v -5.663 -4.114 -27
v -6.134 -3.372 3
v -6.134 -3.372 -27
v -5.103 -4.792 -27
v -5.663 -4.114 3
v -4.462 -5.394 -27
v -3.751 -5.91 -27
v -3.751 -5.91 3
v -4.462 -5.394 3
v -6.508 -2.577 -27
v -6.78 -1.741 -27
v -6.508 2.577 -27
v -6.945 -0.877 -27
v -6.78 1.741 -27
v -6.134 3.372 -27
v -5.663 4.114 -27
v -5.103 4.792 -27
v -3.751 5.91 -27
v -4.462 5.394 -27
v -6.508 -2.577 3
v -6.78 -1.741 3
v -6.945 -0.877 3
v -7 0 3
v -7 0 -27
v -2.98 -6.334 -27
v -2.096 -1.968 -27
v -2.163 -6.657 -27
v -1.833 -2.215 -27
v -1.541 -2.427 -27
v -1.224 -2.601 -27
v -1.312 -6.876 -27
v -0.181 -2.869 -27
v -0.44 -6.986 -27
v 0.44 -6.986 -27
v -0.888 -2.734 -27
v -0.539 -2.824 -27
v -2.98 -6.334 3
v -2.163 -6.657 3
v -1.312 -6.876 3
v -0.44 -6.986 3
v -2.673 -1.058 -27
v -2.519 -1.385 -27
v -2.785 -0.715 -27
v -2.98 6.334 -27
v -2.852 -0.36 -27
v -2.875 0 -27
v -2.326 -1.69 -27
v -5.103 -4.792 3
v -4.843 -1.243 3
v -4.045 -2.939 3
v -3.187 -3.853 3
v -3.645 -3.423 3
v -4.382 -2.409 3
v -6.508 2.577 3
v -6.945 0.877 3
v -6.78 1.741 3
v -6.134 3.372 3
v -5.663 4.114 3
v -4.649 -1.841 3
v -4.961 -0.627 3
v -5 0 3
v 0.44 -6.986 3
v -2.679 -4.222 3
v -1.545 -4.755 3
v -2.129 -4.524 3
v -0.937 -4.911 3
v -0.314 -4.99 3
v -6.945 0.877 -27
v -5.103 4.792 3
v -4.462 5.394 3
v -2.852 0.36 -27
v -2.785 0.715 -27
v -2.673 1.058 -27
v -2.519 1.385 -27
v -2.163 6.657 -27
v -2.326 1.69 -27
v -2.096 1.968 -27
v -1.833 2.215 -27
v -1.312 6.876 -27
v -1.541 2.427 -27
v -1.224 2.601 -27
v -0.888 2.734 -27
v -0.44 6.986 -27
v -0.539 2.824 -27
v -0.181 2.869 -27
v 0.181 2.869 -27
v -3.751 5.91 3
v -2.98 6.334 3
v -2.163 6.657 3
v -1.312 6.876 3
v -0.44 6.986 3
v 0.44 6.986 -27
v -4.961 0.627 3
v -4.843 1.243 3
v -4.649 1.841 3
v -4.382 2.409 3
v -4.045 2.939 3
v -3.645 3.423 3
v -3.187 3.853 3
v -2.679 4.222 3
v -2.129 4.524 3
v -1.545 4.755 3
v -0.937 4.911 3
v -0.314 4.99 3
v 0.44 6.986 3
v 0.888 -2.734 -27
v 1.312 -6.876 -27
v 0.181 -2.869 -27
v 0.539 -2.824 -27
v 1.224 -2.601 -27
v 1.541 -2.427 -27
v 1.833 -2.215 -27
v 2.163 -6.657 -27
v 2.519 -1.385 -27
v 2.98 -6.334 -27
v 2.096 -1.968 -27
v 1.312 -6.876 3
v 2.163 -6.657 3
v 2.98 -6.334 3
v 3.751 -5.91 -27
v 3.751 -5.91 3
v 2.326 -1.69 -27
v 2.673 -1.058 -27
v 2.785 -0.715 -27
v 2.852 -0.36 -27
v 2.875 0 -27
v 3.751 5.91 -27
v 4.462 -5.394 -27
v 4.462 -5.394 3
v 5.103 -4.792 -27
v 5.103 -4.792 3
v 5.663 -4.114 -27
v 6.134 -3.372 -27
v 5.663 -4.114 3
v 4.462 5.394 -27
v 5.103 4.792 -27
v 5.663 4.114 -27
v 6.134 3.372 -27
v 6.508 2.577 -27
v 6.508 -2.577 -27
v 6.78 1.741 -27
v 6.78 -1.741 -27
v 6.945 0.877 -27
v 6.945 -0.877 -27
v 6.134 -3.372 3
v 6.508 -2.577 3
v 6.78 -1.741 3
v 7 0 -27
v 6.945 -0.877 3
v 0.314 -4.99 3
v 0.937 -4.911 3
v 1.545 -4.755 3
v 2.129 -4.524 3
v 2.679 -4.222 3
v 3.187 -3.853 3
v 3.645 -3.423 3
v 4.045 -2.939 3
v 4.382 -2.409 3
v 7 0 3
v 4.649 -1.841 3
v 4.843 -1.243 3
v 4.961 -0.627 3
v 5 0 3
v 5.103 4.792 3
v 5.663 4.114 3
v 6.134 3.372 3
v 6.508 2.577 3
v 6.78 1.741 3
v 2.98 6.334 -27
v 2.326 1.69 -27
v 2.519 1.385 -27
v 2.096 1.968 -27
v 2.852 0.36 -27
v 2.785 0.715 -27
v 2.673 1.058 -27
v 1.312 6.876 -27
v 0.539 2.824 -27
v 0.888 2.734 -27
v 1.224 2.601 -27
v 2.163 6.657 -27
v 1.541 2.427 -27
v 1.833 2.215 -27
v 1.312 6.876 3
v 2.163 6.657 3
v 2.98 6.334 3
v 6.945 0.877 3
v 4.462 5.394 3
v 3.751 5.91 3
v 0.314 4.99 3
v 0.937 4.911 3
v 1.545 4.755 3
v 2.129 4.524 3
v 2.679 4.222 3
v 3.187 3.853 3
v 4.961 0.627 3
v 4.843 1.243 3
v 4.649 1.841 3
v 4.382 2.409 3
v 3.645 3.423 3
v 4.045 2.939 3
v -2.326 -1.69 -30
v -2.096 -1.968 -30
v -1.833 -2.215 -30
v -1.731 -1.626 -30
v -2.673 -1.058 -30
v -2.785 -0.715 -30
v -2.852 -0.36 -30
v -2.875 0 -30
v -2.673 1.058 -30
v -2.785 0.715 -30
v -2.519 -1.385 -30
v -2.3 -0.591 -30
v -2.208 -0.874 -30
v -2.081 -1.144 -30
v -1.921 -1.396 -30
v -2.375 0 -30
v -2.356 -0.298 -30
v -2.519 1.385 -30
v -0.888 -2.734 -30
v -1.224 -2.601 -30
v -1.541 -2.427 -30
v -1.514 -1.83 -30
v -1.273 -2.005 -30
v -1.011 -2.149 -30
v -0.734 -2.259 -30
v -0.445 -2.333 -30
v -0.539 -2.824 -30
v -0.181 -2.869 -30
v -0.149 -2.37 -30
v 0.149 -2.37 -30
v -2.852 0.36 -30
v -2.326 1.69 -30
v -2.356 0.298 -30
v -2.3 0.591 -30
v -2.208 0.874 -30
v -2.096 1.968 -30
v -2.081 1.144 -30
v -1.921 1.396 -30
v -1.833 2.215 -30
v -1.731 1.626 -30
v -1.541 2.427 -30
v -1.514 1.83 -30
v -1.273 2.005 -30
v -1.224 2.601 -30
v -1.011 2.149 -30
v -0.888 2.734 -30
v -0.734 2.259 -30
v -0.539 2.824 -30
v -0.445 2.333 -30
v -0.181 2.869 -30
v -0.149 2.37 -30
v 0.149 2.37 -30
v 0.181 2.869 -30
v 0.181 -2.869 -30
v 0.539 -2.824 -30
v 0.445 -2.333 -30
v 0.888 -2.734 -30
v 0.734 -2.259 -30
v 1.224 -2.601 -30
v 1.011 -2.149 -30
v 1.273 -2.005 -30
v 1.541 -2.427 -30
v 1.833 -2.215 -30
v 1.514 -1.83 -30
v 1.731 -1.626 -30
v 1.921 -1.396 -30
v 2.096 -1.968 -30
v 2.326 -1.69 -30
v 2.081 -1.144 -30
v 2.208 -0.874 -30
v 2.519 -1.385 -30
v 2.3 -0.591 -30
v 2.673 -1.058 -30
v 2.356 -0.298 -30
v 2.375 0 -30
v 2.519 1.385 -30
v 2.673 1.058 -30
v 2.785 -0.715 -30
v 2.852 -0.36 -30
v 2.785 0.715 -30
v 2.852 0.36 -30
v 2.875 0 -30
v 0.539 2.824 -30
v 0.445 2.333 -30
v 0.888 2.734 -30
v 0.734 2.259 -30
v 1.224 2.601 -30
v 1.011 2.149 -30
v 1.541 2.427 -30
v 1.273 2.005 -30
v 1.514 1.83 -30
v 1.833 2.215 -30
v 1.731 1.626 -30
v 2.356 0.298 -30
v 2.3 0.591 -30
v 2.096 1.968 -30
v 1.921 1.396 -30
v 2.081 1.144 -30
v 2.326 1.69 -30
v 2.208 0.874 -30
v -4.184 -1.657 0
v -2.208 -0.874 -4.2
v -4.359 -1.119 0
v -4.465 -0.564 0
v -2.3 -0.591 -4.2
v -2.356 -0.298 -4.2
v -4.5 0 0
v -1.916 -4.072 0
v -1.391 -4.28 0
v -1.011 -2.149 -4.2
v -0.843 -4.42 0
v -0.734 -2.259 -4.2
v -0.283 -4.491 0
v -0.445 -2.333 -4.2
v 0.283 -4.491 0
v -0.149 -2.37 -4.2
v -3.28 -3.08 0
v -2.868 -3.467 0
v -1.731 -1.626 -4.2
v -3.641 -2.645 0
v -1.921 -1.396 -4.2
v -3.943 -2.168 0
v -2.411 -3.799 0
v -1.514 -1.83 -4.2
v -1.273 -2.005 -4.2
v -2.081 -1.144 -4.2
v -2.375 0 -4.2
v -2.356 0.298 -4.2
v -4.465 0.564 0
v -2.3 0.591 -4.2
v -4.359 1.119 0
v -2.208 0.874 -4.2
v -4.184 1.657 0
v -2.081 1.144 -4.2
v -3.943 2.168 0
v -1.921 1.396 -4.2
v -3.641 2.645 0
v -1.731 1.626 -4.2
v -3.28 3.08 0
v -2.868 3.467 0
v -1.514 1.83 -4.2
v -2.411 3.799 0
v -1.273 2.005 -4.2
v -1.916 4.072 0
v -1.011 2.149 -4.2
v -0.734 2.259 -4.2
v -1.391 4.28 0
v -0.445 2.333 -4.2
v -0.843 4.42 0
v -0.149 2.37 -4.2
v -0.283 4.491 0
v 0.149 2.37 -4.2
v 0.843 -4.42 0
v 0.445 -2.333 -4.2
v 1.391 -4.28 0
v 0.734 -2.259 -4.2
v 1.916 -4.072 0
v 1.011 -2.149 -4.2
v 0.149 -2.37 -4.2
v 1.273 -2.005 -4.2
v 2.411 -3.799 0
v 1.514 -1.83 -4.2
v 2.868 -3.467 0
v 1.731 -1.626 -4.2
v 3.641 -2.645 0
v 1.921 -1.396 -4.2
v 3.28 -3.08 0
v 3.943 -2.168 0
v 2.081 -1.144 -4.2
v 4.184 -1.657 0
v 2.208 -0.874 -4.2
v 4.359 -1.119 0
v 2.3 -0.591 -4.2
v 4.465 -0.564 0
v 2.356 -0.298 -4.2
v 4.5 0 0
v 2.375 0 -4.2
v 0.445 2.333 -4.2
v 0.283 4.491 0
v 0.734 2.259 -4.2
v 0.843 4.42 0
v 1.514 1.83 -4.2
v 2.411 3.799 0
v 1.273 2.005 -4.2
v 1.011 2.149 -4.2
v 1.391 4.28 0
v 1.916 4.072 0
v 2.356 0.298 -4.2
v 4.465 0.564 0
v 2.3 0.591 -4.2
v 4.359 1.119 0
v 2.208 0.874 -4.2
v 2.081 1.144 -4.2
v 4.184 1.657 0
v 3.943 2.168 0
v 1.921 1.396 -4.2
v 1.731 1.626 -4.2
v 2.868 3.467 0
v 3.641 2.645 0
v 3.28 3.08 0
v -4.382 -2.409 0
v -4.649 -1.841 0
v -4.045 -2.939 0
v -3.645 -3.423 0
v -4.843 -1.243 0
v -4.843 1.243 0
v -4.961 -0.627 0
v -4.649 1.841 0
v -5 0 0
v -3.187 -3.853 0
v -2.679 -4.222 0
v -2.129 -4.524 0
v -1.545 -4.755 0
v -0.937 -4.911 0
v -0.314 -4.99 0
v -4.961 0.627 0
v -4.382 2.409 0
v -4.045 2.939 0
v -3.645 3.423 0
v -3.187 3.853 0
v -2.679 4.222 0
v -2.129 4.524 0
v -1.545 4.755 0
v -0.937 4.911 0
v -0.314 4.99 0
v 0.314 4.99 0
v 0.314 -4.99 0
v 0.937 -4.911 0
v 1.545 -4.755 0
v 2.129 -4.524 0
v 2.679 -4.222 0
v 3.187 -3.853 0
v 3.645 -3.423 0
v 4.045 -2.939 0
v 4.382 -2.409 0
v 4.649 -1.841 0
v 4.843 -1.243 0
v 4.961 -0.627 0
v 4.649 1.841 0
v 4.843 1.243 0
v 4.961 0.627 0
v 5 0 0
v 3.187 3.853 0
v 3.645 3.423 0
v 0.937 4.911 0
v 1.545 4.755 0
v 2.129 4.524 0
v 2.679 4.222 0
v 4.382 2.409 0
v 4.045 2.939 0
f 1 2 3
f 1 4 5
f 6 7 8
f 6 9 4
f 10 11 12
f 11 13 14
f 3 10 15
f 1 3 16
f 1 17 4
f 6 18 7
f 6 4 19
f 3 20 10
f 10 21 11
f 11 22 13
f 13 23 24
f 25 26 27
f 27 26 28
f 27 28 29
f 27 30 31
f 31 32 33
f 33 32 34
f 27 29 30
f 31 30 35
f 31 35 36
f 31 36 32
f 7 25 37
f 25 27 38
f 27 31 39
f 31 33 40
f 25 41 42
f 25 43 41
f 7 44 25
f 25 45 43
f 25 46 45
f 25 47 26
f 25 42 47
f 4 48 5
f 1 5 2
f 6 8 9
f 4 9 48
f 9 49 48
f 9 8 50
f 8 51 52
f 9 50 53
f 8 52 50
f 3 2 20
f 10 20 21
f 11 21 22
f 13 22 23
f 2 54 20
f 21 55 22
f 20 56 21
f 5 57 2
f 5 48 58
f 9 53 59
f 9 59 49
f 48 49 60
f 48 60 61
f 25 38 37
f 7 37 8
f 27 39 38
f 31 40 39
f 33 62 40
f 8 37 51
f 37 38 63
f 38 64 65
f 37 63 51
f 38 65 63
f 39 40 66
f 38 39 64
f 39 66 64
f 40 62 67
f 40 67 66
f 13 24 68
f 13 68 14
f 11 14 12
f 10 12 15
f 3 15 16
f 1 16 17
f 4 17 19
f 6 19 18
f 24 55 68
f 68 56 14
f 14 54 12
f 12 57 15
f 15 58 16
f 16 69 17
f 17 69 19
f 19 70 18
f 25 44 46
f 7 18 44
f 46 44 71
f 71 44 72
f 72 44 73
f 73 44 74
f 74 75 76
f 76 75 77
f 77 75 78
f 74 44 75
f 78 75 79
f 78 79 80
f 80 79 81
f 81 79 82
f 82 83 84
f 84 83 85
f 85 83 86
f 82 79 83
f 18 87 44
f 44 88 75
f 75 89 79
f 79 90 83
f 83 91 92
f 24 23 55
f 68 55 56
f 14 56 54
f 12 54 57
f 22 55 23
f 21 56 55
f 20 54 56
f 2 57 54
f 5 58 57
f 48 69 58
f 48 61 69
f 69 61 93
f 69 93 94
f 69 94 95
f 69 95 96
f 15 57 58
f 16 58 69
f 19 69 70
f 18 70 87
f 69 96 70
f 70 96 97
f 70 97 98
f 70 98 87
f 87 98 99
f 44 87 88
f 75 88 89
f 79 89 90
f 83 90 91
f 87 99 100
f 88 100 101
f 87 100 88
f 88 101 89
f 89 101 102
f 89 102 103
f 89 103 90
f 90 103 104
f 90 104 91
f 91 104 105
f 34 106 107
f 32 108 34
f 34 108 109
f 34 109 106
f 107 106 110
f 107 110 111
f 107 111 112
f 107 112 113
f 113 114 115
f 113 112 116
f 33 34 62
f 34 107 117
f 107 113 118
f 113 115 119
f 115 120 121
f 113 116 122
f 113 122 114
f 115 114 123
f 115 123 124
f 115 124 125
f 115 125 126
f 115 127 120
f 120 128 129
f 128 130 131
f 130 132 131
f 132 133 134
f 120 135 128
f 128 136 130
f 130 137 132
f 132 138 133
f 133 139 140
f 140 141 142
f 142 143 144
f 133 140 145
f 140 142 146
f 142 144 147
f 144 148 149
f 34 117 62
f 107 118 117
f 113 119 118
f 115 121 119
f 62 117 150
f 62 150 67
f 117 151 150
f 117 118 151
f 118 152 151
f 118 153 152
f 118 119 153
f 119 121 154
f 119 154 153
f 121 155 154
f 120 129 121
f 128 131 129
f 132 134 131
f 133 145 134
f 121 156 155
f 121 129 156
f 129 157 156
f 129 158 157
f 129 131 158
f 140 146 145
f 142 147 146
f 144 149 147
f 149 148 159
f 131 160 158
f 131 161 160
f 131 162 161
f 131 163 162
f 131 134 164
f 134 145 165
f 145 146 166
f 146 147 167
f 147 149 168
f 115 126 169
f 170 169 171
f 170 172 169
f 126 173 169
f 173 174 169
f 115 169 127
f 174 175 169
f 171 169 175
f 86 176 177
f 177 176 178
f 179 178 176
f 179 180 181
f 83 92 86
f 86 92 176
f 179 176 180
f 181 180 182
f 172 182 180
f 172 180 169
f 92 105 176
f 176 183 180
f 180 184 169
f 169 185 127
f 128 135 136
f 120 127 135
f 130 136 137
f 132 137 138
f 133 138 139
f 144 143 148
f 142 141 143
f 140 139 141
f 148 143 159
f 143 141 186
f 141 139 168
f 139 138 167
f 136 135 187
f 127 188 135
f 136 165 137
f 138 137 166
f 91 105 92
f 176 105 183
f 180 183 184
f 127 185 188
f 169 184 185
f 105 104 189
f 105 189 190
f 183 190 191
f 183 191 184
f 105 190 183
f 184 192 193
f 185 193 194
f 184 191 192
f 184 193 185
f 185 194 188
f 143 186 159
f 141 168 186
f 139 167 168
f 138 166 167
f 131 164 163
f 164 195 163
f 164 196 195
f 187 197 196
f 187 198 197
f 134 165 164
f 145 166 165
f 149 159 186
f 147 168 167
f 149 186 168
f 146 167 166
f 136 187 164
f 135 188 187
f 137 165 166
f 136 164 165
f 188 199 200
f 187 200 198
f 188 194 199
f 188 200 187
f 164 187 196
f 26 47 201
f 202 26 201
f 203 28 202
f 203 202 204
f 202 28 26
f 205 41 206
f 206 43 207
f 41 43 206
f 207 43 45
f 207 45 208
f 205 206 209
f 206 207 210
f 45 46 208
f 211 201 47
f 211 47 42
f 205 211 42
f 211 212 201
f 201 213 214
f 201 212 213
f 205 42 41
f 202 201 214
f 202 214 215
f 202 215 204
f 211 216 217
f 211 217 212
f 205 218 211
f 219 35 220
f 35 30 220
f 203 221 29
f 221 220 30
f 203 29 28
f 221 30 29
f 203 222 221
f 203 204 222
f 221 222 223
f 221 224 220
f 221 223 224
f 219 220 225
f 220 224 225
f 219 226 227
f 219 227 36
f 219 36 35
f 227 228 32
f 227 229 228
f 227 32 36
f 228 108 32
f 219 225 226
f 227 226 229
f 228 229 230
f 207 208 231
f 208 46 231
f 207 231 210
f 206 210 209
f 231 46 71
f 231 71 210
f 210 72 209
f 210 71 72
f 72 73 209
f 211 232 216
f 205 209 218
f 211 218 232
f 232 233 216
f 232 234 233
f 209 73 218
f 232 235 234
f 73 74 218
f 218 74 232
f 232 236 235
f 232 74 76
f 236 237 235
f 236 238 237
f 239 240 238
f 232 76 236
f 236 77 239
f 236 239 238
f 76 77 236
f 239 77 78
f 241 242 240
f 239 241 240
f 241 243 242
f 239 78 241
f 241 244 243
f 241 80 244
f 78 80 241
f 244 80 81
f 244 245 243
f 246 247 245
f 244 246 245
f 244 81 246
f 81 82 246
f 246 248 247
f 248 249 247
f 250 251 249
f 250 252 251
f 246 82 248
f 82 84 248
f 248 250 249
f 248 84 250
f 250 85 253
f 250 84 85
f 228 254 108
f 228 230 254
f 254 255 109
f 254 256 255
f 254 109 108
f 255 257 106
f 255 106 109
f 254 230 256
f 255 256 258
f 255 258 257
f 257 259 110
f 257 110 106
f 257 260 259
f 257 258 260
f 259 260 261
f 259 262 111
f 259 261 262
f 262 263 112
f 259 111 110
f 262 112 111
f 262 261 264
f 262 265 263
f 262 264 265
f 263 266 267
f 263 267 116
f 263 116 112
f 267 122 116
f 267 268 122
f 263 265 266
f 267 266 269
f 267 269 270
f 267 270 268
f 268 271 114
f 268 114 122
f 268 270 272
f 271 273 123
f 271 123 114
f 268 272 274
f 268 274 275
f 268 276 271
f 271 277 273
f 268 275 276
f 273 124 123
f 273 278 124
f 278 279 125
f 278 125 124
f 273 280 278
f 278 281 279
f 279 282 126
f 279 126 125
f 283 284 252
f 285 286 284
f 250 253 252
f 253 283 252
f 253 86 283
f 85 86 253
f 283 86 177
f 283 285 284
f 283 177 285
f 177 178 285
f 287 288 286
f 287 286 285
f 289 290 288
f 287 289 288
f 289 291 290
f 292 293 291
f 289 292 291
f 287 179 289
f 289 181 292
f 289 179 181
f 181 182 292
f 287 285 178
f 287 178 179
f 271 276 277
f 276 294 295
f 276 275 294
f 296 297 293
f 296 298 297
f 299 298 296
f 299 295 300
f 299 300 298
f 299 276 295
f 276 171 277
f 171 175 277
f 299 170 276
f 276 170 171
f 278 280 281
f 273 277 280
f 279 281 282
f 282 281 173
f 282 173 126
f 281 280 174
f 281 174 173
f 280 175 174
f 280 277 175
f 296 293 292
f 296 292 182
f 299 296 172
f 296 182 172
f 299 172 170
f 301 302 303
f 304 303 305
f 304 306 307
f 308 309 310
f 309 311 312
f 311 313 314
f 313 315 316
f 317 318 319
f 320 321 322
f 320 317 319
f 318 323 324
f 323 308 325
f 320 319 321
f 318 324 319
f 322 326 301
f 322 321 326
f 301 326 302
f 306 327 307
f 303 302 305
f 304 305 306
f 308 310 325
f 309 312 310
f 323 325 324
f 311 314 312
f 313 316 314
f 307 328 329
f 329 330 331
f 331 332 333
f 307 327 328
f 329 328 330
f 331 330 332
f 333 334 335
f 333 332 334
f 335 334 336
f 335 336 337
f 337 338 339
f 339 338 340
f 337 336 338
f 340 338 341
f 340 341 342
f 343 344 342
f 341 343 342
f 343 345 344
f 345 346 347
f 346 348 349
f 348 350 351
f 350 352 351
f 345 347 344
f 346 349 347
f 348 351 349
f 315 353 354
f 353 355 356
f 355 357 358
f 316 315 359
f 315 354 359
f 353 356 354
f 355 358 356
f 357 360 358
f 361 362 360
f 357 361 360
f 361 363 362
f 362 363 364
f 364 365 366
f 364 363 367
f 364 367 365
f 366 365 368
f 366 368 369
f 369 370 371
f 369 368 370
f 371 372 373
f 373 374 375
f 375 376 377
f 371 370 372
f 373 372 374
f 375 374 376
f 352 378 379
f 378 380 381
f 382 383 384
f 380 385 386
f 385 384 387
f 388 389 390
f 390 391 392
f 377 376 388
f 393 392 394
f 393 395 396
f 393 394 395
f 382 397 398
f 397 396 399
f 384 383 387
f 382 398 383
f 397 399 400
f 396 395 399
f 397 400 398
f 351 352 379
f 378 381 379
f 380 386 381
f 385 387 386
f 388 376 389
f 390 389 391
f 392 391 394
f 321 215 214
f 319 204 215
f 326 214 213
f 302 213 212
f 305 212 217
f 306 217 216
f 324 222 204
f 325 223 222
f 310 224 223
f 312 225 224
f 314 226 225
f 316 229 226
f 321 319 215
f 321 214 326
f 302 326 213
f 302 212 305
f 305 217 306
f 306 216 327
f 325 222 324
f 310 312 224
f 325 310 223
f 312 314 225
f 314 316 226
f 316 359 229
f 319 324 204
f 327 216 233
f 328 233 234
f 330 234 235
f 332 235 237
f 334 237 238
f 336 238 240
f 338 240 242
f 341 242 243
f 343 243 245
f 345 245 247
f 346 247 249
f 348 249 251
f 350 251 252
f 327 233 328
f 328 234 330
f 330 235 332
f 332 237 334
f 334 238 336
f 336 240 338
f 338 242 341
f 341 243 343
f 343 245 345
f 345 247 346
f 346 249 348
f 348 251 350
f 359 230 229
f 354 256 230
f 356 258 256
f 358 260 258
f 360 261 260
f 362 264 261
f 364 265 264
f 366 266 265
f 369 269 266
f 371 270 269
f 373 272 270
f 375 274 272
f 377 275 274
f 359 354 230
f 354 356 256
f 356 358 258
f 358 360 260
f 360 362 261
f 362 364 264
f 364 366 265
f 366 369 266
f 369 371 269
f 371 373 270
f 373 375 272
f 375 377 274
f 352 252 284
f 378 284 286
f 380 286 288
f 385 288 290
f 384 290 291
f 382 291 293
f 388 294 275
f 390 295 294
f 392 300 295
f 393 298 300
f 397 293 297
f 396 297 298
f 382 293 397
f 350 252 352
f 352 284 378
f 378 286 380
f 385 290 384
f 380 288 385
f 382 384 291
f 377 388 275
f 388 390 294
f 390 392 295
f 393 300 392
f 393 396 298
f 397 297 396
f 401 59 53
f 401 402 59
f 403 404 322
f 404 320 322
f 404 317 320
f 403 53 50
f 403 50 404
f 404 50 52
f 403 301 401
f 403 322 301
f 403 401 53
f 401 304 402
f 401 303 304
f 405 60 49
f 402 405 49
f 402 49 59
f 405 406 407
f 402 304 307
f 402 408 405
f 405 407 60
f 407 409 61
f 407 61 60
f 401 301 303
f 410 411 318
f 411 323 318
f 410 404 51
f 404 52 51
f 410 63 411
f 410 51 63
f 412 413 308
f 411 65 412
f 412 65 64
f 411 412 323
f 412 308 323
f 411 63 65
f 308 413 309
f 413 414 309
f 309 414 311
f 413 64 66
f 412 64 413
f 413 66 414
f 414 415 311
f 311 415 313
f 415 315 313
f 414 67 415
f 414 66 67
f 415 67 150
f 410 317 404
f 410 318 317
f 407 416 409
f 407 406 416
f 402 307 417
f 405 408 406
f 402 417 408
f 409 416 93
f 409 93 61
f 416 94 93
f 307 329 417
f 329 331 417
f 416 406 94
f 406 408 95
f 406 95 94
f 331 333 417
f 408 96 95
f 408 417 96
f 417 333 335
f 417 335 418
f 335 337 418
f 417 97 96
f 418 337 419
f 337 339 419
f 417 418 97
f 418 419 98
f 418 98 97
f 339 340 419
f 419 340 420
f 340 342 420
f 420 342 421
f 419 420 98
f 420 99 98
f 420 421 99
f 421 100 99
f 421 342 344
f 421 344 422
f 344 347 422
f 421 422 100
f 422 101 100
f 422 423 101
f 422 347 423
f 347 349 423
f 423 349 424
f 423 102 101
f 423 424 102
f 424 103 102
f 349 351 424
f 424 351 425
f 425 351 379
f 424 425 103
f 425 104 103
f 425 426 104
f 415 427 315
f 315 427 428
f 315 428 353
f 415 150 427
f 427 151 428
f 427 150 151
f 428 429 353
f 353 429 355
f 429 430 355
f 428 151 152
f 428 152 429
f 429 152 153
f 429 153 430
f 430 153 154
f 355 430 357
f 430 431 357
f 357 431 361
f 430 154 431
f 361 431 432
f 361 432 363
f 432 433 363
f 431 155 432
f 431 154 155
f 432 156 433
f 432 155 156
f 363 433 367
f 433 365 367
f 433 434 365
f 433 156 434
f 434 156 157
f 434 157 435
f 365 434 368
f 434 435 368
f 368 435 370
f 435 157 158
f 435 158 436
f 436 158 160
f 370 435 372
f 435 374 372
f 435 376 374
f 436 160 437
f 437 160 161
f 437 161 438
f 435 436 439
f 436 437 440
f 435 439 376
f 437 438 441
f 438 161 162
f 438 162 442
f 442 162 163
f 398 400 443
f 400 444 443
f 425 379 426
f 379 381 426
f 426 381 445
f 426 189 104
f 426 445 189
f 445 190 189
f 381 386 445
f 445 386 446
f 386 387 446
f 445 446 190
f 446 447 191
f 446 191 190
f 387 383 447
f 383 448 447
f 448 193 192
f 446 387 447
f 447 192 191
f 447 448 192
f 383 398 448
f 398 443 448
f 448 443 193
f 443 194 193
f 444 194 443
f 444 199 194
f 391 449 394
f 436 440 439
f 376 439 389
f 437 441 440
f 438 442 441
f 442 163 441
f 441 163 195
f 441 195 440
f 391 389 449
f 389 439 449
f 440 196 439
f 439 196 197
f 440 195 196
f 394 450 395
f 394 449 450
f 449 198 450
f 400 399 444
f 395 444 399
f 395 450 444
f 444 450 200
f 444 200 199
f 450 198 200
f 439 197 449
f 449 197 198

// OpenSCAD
$fn = 50;

difference() {
	union() {
		translate(v = [0, 0, -27.0]) {
			cylinder(h = 30, r = 7.0);
		}
		#translate(v = [0, 0, -30.0]) {
			cylinder(h = 30, r = 2.875);
		}
	}
	union() {
		translate(v = [0, 0, 0]) {
			rotate(a = [0, 0, 0]) {
				difference() {
					union() {
						translate(v = [0, 0, -30.0]) {
							cylinder(h = 30, r = 2.25);
						}
						translate(v = [0, 0, -4.2]) {
							cylinder(h = 4.2, r1 = 2.375, r2 = 4.5);
						}
						translate(v = [0, 0, -30.0]) {
							cylinder(h = 30, r = 2.375);
						}
						translate(v = [0, 0, -30.0]) {
							cylinder(h = 30, r = 2.25);
						}
					}
					union();
				}
			}
		}
		#cylinder(h = 3, r = 5.0);
	}
}
